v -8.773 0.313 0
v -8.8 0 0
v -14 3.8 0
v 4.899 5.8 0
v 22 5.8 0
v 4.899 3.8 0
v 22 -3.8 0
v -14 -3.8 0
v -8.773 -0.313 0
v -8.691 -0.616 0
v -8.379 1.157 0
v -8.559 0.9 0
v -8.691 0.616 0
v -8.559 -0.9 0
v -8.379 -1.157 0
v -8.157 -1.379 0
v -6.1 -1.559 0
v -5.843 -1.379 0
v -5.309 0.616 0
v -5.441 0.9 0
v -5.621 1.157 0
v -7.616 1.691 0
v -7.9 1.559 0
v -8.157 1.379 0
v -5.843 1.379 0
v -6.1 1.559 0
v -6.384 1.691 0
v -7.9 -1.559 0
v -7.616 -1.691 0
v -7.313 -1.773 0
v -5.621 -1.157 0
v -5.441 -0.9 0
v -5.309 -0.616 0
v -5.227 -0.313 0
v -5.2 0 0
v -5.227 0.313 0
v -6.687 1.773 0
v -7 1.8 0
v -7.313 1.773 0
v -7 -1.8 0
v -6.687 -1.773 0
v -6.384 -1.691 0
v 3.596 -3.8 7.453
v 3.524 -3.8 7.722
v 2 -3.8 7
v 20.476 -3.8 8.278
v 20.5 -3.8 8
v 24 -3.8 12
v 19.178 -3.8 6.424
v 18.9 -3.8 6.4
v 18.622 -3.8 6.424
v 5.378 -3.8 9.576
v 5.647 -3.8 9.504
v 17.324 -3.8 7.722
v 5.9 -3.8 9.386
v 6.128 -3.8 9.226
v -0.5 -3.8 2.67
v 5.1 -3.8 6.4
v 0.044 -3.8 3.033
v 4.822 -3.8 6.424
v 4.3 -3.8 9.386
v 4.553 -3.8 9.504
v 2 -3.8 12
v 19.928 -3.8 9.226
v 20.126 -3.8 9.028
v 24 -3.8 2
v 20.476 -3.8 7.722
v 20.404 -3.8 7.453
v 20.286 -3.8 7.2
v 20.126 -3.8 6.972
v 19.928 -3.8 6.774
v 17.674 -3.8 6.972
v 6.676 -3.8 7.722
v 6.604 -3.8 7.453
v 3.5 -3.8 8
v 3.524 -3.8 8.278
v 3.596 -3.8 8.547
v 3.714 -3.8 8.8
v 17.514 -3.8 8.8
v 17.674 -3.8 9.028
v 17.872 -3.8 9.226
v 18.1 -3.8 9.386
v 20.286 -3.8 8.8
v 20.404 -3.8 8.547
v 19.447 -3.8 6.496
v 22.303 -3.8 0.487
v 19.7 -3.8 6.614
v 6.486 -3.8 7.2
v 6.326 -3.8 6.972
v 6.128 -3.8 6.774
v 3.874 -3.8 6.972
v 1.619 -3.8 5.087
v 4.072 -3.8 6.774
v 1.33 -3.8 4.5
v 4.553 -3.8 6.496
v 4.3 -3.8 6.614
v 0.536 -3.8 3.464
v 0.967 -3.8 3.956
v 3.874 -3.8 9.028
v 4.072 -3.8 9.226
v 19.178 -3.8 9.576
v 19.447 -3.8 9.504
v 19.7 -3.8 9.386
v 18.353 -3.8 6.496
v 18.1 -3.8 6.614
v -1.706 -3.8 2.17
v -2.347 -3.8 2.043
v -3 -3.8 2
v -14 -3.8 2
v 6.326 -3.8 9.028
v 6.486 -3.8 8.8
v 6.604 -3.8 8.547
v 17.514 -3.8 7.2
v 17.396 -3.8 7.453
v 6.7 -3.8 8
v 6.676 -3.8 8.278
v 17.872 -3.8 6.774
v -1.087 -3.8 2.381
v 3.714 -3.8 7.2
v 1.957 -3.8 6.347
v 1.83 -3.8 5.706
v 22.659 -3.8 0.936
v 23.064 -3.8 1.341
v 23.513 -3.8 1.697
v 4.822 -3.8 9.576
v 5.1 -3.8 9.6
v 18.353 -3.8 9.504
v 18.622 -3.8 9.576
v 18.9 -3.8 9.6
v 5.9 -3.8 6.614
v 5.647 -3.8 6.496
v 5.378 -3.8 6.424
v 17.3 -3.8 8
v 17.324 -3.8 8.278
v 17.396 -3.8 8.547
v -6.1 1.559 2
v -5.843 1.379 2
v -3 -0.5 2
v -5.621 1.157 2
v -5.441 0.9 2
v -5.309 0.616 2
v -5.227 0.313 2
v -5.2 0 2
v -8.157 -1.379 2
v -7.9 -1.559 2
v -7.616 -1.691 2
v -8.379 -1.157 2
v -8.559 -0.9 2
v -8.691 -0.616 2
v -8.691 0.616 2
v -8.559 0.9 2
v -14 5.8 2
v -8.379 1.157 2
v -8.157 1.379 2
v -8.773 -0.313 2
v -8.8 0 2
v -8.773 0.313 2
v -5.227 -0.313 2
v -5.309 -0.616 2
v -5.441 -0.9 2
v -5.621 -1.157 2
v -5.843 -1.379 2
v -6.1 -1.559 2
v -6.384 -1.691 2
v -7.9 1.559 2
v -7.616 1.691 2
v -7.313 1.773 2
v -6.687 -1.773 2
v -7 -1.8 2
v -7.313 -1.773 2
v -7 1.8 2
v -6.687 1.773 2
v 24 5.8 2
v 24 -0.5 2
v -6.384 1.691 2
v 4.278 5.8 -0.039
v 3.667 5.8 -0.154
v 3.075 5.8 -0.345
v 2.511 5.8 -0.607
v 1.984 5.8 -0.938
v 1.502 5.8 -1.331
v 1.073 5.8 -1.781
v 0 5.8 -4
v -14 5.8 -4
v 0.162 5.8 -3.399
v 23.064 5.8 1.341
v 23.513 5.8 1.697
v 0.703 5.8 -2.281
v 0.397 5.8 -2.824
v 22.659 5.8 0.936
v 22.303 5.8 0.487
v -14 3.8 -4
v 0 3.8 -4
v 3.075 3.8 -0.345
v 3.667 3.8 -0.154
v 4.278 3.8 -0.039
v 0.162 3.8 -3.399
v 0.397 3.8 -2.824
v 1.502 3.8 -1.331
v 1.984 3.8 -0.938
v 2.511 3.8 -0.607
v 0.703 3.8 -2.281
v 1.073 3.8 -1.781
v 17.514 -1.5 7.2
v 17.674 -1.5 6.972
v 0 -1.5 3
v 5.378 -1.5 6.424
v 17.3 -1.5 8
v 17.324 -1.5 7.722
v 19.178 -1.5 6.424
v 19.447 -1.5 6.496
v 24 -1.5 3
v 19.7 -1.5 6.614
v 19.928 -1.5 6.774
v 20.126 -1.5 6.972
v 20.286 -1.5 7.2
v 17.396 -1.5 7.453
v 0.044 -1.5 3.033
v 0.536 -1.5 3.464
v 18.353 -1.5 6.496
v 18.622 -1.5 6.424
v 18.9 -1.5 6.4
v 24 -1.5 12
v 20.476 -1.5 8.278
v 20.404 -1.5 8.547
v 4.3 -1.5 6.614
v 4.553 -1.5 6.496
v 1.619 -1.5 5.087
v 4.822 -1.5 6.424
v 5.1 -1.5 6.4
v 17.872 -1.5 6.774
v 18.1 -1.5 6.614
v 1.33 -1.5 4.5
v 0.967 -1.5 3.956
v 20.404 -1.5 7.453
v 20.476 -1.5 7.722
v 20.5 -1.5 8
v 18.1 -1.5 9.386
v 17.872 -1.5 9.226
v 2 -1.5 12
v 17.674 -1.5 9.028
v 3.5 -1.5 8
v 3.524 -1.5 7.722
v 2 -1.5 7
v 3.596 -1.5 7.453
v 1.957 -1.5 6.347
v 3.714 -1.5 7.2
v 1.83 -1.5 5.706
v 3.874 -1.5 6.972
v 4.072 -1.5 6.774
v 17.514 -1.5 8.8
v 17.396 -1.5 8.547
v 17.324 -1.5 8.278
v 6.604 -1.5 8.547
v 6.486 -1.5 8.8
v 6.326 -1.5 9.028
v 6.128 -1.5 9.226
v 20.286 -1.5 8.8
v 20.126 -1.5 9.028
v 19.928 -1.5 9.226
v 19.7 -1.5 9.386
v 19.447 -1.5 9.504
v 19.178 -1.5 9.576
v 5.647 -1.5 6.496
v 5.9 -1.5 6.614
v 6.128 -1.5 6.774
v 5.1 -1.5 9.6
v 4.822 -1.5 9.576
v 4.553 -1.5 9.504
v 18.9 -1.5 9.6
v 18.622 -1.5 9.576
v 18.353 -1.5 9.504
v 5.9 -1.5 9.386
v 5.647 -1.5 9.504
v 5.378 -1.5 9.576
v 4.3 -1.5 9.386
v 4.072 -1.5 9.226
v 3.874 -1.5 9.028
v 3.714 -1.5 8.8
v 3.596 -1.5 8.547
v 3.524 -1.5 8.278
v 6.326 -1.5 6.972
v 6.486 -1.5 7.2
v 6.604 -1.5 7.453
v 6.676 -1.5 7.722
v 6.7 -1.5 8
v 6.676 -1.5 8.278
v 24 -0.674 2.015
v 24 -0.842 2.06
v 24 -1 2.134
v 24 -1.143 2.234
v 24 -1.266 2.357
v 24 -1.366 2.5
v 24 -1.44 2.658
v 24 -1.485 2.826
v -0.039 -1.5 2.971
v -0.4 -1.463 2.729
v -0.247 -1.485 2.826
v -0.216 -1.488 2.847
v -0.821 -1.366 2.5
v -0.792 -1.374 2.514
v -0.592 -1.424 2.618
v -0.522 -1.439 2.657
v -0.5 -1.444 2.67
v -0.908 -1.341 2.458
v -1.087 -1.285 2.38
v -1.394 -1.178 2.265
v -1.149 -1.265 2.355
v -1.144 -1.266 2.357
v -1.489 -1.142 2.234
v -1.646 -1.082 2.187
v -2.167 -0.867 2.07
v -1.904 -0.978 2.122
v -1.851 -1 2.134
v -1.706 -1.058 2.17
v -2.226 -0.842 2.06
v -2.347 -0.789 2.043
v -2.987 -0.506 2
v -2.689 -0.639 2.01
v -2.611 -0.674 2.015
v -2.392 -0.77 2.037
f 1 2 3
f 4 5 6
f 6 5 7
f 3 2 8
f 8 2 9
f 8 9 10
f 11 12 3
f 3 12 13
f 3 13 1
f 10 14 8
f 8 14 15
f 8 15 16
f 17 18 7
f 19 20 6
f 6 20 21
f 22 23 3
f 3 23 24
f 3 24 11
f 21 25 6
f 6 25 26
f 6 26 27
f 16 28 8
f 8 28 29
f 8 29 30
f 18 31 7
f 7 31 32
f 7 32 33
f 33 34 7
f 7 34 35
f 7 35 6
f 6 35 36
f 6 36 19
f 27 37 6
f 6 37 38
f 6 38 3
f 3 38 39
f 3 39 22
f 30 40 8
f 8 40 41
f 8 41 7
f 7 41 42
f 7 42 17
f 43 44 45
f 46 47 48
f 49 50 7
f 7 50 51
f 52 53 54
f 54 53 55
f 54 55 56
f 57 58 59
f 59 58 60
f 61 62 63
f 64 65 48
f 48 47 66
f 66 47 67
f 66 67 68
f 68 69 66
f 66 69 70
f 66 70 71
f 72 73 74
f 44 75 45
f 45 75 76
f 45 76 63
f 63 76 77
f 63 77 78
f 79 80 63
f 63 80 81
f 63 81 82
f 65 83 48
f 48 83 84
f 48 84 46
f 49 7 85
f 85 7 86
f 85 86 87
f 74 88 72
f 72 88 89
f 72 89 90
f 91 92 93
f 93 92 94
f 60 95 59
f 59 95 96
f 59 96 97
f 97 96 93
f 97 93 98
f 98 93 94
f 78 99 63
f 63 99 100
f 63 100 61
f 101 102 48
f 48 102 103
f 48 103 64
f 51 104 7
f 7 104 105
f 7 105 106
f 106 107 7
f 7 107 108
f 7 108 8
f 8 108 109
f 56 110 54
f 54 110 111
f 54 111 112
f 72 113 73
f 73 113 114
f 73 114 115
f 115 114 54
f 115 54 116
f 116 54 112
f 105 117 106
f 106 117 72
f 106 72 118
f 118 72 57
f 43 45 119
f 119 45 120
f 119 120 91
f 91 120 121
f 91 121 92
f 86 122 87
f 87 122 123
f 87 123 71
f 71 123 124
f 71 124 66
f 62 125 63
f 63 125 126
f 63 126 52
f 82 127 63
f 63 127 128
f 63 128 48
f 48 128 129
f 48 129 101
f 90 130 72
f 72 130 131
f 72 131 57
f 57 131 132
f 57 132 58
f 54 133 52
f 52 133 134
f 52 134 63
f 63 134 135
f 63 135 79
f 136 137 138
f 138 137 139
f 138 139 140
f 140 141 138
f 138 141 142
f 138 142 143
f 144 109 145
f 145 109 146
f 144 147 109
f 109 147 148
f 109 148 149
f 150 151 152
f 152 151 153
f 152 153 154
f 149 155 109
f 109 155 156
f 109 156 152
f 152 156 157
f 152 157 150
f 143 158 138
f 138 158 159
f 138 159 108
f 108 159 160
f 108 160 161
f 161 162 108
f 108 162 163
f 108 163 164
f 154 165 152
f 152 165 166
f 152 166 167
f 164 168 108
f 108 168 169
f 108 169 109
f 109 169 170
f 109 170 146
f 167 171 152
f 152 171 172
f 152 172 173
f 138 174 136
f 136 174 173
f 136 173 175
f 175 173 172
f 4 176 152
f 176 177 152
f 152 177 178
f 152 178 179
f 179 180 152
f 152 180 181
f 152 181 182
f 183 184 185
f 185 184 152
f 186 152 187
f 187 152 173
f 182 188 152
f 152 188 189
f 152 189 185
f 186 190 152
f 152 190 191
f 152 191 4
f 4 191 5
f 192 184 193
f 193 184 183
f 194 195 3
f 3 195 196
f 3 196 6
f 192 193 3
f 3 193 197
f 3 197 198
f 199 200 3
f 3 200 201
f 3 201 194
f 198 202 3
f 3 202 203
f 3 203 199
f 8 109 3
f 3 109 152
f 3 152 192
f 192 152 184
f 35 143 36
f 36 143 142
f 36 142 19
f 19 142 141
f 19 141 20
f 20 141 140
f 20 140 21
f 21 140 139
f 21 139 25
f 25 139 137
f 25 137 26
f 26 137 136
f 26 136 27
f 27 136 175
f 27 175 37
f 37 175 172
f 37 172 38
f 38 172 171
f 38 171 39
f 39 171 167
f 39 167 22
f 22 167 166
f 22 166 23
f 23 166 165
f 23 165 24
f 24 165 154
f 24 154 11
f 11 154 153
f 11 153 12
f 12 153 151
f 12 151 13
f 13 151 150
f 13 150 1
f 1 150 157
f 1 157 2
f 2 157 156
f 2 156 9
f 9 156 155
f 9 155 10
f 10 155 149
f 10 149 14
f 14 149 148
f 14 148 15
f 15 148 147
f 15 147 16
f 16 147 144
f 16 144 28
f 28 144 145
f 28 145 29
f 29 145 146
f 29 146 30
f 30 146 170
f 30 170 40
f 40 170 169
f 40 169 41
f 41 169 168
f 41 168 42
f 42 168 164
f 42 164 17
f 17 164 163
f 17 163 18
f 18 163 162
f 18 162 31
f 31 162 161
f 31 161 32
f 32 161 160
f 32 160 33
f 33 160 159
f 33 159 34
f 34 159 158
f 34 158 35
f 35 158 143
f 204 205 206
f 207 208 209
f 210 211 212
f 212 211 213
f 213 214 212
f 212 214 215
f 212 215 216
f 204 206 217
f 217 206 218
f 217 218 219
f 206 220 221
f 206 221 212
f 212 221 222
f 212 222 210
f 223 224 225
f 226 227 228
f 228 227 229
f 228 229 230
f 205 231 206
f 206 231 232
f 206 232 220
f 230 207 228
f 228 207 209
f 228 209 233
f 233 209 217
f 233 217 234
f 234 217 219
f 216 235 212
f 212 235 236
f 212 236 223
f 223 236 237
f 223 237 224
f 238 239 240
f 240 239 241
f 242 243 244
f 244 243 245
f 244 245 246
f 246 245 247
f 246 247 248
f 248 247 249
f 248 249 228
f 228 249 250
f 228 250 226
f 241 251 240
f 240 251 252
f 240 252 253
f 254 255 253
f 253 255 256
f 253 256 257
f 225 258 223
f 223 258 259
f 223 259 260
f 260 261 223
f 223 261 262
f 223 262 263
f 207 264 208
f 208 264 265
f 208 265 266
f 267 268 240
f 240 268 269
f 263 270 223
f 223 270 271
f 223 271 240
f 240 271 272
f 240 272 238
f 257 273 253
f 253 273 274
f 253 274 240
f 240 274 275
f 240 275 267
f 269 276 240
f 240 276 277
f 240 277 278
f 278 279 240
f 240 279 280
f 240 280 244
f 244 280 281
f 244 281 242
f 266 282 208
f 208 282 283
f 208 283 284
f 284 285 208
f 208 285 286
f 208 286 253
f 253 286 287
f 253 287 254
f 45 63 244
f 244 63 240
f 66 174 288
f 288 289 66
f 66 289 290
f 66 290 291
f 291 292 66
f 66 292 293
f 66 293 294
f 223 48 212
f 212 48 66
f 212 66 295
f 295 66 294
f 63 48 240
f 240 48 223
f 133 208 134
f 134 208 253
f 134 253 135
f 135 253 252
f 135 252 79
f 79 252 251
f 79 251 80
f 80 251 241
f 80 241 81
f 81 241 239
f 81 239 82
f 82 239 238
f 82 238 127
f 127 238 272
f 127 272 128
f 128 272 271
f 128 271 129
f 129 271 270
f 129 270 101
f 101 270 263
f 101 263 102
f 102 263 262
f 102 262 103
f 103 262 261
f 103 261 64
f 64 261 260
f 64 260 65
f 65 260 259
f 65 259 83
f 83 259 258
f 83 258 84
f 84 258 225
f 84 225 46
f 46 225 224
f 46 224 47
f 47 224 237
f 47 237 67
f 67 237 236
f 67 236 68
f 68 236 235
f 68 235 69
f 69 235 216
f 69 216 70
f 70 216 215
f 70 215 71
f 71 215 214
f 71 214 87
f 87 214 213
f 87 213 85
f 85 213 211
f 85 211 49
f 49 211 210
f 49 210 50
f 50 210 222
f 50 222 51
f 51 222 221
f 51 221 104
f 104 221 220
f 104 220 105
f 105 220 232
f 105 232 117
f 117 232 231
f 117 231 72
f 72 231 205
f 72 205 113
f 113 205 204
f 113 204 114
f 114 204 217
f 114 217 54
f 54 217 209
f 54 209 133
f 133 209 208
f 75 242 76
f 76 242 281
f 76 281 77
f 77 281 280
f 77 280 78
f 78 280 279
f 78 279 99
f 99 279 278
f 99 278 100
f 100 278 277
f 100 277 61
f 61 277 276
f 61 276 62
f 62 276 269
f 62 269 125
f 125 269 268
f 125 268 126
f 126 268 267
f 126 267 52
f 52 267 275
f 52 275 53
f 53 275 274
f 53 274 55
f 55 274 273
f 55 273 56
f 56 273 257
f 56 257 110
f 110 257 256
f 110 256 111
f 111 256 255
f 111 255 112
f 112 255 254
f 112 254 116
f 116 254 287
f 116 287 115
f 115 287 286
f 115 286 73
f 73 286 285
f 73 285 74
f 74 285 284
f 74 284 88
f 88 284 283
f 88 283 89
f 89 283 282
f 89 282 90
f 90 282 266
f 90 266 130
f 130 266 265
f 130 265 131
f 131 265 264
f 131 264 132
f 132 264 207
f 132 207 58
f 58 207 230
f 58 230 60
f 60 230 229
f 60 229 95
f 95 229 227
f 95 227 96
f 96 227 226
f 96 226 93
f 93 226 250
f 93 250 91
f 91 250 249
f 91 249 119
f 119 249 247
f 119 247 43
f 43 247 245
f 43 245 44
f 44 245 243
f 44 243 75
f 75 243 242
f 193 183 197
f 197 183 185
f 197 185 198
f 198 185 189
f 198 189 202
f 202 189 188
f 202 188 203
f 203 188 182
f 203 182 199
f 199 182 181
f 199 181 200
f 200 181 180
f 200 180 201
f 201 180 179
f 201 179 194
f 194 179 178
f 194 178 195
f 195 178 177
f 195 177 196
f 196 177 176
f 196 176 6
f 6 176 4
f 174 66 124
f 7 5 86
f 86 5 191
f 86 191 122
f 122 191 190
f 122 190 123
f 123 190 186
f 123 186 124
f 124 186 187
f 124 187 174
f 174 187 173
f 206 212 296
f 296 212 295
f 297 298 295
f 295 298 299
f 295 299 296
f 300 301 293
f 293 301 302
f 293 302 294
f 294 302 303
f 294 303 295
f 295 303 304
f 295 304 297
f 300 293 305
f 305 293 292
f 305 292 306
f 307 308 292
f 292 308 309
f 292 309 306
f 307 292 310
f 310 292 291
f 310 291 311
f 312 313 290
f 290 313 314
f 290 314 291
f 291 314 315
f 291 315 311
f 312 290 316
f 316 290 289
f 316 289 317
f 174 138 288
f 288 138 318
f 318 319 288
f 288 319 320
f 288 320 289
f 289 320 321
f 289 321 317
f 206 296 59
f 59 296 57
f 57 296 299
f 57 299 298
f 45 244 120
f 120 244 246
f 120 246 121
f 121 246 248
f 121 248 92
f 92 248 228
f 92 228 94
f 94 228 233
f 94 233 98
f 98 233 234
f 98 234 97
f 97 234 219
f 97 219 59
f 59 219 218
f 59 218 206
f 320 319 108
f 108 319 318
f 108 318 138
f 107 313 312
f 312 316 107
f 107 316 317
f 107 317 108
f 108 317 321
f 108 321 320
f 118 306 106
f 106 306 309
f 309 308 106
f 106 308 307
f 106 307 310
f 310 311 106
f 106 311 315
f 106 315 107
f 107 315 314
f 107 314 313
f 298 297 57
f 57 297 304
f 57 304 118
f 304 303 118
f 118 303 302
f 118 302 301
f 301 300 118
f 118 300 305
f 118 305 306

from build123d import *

# Parameters (mm, degrees)
CROQUIS1_W              = 2
CROQUIS1_H              = 2
CROQUIS1_W_2            = 4
SALIENTE_EXTRUIR1_DEPTH = 14
CROQUIS1_3_W            = 2
CROQUIS1_3_H            = 2
SALIENTE_EXTRUIR2_DEPTH = 22
CORTAR_EXTRUIR1_DEPTH   = 2
CROQUIS2_3_W            = 18
CROQUIS2_3_H            = 2.3
CROQUIS2_3_W_2          = 2
SALIENTE_EXTRUIR3_DEPTH = 10
CROQUIS3_R              = 1.6
CORTAR_EXTRUIR2_DEPTH   = 2.3
REDONDEO1_R             = 5
REDONDEO4_START         = -3.8
REDONDEO4_DEPTH         = 9.6
REDONDEO5_R             = 1
REDONDEO6_R             = 5


with BuildPart() as part:
    # Croquis1 → Saliente-Extruir1 (new body)
    with BuildSketch(Plane(origin=(0, 0, 0), x_dir=(0, 0, -1), z_dir=(1, 0, 0))):
        Polygon((0, -3.8), (0, 0), (0, 3.8), (-2, 3.8), (-2, -3.8), align=None)
        with Locations((-1, 4.8)):
            Rectangle(CROQUIS1_W, CROQUIS1_H)
        with Locations((2, 4.8)):
            Rectangle(CROQUIS1_W_2, CROQUIS1_H)
    extrude(amount=-SALIENTE_EXTRUIR1_DEPTH)

    # Croquis1<3> → Saliente-Extruir2 (add)
    with BuildSketch(Plane(origin=(0, 0, 0), x_dir=(0, 0, -1), z_dir=(1, 0, 0))):
        Polygon((0, -3.8), (0, 0), (0, 3.8), (-2, 3.8), (-2, -3.8), align=None)
        with Locations((-1, 4.8)):
            Rectangle(CROQUIS1_3_W, CROQUIS1_3_H)
    extrude(amount=SALIENTE_EXTRUIR2_DEPTH)

    # Croquis2 → Cortar-Extruir1 (cut)
    with BuildSketch(Plane.XY.offset(2)):
        with BuildLine():
            ThreePointArc((-8.8, 0), (-7, -1.8), (-5.2, 0))
            Line((-5.2, 0), (-8.8, 0))
        make_face()
        with BuildLine():
            Line((-8.8, 0), (-5.2, 0))
            ThreePointArc((-5.2, 0), (-7, 1.8), (-8.8, 0))
        make_face()
    extrude(amount=-CORTAR_EXTRUIR1_DEPTH, mode=Mode.SUBTRACT)

    # Croquis2<3> → Saliente-Extruir3 (add)
    with BuildSketch(Plane.XY.offset(2)):
        with Locations((13, -2.65)):
            Rectangle(CROQUIS2_3_W, CROQUIS2_3_H)
        with Locations((3, -2.65)):
            Rectangle(CROQUIS2_3_W_2, CROQUIS2_3_H)
        with Locations((23, -2.65)):
            Rectangle(CROQUIS2_3_W_2, CROQUIS2_3_H)
    extrude(amount=SALIENTE_EXTRUIR3_DEPTH)

    # Croquis3 → Cortar-Extruir2 (cut)
    with BuildSketch(Plane(origin=(0, -1.5, 0), x_dir=(1, 0, 0), z_dir=(0, 1, 0))):
        with Locations(Location((5.1, -8, 0), (0, 0, 180))):
            Circle(CROQUIS3_R)
        with Locations(Location((18.9, -8, 0), (0, 0, 180))):
            Circle(CROQUIS3_R)
    extrude(amount=-CORTAR_EXTRUIR2_DEPTH, mode=Mode.SUBTRACT)

    # Redondeo1
    # the kernel refuses this fillet: 5 mm, written as the material it adds along each edge
    with BuildSketch(Plane(origin=(0, 3.8, 0), x_dir=(1, 0, 0), z_dir=(0, 1, 0))) as redondeo1_piece_1:
        with BuildLine():
            CenterArc((4.898979486, 5), REDONDEO1_R, 191.536959033, 78.463040967)
            Line((0, 4), (-0.09797959, 3.98))
            ThreePointArc((-0.09797959, 3.98), (-0.1, 2), (-0.1, 0))
            Line((-0.1, 0), (0, -0.1))
            Line((0, -0.1), (4.898979486, -0.1))
            Line((4.898979486, -0.1), (4.898979486, 0))
        make_face()
    extrude(amount=2)

    # Redondeo4: read off the stored shape, not the designer's step
    # Redondeo4 outline → Redondeo4 (add)
    with BuildSketch(Plane(origin=(0, 0, 0), x_dir=(1, 0, 0), z_dir=(0, 1, 0)).offset(REDONDEO4_START)):
        with BuildLine():
            ThreePointArc((24, -2), (22.855631086, -1.144368914), (22, 0))
            Line((22, 0), (22, -2))
            Line((22, -2), (24, -2))
        make_face()
    extrude(amount=REDONDEO4_DEPTH)

    # Redondeo5
    redondeo5_edges = [part.edges().sort_by_distance(p)[0] for p in [
        (13, -1.5, 2),
    ]]
    fillet(redondeo5_edges, radius=REDONDEO5_R)

    # Redondeo6
    redondeo6_edges = [part.edges().sort_by_distance(p)[0] for p in [
        (2, -2.15, 2),
    ]]
    fillet(redondeo6_edges, radius=REDONDEO6_R)


solid = part.part
